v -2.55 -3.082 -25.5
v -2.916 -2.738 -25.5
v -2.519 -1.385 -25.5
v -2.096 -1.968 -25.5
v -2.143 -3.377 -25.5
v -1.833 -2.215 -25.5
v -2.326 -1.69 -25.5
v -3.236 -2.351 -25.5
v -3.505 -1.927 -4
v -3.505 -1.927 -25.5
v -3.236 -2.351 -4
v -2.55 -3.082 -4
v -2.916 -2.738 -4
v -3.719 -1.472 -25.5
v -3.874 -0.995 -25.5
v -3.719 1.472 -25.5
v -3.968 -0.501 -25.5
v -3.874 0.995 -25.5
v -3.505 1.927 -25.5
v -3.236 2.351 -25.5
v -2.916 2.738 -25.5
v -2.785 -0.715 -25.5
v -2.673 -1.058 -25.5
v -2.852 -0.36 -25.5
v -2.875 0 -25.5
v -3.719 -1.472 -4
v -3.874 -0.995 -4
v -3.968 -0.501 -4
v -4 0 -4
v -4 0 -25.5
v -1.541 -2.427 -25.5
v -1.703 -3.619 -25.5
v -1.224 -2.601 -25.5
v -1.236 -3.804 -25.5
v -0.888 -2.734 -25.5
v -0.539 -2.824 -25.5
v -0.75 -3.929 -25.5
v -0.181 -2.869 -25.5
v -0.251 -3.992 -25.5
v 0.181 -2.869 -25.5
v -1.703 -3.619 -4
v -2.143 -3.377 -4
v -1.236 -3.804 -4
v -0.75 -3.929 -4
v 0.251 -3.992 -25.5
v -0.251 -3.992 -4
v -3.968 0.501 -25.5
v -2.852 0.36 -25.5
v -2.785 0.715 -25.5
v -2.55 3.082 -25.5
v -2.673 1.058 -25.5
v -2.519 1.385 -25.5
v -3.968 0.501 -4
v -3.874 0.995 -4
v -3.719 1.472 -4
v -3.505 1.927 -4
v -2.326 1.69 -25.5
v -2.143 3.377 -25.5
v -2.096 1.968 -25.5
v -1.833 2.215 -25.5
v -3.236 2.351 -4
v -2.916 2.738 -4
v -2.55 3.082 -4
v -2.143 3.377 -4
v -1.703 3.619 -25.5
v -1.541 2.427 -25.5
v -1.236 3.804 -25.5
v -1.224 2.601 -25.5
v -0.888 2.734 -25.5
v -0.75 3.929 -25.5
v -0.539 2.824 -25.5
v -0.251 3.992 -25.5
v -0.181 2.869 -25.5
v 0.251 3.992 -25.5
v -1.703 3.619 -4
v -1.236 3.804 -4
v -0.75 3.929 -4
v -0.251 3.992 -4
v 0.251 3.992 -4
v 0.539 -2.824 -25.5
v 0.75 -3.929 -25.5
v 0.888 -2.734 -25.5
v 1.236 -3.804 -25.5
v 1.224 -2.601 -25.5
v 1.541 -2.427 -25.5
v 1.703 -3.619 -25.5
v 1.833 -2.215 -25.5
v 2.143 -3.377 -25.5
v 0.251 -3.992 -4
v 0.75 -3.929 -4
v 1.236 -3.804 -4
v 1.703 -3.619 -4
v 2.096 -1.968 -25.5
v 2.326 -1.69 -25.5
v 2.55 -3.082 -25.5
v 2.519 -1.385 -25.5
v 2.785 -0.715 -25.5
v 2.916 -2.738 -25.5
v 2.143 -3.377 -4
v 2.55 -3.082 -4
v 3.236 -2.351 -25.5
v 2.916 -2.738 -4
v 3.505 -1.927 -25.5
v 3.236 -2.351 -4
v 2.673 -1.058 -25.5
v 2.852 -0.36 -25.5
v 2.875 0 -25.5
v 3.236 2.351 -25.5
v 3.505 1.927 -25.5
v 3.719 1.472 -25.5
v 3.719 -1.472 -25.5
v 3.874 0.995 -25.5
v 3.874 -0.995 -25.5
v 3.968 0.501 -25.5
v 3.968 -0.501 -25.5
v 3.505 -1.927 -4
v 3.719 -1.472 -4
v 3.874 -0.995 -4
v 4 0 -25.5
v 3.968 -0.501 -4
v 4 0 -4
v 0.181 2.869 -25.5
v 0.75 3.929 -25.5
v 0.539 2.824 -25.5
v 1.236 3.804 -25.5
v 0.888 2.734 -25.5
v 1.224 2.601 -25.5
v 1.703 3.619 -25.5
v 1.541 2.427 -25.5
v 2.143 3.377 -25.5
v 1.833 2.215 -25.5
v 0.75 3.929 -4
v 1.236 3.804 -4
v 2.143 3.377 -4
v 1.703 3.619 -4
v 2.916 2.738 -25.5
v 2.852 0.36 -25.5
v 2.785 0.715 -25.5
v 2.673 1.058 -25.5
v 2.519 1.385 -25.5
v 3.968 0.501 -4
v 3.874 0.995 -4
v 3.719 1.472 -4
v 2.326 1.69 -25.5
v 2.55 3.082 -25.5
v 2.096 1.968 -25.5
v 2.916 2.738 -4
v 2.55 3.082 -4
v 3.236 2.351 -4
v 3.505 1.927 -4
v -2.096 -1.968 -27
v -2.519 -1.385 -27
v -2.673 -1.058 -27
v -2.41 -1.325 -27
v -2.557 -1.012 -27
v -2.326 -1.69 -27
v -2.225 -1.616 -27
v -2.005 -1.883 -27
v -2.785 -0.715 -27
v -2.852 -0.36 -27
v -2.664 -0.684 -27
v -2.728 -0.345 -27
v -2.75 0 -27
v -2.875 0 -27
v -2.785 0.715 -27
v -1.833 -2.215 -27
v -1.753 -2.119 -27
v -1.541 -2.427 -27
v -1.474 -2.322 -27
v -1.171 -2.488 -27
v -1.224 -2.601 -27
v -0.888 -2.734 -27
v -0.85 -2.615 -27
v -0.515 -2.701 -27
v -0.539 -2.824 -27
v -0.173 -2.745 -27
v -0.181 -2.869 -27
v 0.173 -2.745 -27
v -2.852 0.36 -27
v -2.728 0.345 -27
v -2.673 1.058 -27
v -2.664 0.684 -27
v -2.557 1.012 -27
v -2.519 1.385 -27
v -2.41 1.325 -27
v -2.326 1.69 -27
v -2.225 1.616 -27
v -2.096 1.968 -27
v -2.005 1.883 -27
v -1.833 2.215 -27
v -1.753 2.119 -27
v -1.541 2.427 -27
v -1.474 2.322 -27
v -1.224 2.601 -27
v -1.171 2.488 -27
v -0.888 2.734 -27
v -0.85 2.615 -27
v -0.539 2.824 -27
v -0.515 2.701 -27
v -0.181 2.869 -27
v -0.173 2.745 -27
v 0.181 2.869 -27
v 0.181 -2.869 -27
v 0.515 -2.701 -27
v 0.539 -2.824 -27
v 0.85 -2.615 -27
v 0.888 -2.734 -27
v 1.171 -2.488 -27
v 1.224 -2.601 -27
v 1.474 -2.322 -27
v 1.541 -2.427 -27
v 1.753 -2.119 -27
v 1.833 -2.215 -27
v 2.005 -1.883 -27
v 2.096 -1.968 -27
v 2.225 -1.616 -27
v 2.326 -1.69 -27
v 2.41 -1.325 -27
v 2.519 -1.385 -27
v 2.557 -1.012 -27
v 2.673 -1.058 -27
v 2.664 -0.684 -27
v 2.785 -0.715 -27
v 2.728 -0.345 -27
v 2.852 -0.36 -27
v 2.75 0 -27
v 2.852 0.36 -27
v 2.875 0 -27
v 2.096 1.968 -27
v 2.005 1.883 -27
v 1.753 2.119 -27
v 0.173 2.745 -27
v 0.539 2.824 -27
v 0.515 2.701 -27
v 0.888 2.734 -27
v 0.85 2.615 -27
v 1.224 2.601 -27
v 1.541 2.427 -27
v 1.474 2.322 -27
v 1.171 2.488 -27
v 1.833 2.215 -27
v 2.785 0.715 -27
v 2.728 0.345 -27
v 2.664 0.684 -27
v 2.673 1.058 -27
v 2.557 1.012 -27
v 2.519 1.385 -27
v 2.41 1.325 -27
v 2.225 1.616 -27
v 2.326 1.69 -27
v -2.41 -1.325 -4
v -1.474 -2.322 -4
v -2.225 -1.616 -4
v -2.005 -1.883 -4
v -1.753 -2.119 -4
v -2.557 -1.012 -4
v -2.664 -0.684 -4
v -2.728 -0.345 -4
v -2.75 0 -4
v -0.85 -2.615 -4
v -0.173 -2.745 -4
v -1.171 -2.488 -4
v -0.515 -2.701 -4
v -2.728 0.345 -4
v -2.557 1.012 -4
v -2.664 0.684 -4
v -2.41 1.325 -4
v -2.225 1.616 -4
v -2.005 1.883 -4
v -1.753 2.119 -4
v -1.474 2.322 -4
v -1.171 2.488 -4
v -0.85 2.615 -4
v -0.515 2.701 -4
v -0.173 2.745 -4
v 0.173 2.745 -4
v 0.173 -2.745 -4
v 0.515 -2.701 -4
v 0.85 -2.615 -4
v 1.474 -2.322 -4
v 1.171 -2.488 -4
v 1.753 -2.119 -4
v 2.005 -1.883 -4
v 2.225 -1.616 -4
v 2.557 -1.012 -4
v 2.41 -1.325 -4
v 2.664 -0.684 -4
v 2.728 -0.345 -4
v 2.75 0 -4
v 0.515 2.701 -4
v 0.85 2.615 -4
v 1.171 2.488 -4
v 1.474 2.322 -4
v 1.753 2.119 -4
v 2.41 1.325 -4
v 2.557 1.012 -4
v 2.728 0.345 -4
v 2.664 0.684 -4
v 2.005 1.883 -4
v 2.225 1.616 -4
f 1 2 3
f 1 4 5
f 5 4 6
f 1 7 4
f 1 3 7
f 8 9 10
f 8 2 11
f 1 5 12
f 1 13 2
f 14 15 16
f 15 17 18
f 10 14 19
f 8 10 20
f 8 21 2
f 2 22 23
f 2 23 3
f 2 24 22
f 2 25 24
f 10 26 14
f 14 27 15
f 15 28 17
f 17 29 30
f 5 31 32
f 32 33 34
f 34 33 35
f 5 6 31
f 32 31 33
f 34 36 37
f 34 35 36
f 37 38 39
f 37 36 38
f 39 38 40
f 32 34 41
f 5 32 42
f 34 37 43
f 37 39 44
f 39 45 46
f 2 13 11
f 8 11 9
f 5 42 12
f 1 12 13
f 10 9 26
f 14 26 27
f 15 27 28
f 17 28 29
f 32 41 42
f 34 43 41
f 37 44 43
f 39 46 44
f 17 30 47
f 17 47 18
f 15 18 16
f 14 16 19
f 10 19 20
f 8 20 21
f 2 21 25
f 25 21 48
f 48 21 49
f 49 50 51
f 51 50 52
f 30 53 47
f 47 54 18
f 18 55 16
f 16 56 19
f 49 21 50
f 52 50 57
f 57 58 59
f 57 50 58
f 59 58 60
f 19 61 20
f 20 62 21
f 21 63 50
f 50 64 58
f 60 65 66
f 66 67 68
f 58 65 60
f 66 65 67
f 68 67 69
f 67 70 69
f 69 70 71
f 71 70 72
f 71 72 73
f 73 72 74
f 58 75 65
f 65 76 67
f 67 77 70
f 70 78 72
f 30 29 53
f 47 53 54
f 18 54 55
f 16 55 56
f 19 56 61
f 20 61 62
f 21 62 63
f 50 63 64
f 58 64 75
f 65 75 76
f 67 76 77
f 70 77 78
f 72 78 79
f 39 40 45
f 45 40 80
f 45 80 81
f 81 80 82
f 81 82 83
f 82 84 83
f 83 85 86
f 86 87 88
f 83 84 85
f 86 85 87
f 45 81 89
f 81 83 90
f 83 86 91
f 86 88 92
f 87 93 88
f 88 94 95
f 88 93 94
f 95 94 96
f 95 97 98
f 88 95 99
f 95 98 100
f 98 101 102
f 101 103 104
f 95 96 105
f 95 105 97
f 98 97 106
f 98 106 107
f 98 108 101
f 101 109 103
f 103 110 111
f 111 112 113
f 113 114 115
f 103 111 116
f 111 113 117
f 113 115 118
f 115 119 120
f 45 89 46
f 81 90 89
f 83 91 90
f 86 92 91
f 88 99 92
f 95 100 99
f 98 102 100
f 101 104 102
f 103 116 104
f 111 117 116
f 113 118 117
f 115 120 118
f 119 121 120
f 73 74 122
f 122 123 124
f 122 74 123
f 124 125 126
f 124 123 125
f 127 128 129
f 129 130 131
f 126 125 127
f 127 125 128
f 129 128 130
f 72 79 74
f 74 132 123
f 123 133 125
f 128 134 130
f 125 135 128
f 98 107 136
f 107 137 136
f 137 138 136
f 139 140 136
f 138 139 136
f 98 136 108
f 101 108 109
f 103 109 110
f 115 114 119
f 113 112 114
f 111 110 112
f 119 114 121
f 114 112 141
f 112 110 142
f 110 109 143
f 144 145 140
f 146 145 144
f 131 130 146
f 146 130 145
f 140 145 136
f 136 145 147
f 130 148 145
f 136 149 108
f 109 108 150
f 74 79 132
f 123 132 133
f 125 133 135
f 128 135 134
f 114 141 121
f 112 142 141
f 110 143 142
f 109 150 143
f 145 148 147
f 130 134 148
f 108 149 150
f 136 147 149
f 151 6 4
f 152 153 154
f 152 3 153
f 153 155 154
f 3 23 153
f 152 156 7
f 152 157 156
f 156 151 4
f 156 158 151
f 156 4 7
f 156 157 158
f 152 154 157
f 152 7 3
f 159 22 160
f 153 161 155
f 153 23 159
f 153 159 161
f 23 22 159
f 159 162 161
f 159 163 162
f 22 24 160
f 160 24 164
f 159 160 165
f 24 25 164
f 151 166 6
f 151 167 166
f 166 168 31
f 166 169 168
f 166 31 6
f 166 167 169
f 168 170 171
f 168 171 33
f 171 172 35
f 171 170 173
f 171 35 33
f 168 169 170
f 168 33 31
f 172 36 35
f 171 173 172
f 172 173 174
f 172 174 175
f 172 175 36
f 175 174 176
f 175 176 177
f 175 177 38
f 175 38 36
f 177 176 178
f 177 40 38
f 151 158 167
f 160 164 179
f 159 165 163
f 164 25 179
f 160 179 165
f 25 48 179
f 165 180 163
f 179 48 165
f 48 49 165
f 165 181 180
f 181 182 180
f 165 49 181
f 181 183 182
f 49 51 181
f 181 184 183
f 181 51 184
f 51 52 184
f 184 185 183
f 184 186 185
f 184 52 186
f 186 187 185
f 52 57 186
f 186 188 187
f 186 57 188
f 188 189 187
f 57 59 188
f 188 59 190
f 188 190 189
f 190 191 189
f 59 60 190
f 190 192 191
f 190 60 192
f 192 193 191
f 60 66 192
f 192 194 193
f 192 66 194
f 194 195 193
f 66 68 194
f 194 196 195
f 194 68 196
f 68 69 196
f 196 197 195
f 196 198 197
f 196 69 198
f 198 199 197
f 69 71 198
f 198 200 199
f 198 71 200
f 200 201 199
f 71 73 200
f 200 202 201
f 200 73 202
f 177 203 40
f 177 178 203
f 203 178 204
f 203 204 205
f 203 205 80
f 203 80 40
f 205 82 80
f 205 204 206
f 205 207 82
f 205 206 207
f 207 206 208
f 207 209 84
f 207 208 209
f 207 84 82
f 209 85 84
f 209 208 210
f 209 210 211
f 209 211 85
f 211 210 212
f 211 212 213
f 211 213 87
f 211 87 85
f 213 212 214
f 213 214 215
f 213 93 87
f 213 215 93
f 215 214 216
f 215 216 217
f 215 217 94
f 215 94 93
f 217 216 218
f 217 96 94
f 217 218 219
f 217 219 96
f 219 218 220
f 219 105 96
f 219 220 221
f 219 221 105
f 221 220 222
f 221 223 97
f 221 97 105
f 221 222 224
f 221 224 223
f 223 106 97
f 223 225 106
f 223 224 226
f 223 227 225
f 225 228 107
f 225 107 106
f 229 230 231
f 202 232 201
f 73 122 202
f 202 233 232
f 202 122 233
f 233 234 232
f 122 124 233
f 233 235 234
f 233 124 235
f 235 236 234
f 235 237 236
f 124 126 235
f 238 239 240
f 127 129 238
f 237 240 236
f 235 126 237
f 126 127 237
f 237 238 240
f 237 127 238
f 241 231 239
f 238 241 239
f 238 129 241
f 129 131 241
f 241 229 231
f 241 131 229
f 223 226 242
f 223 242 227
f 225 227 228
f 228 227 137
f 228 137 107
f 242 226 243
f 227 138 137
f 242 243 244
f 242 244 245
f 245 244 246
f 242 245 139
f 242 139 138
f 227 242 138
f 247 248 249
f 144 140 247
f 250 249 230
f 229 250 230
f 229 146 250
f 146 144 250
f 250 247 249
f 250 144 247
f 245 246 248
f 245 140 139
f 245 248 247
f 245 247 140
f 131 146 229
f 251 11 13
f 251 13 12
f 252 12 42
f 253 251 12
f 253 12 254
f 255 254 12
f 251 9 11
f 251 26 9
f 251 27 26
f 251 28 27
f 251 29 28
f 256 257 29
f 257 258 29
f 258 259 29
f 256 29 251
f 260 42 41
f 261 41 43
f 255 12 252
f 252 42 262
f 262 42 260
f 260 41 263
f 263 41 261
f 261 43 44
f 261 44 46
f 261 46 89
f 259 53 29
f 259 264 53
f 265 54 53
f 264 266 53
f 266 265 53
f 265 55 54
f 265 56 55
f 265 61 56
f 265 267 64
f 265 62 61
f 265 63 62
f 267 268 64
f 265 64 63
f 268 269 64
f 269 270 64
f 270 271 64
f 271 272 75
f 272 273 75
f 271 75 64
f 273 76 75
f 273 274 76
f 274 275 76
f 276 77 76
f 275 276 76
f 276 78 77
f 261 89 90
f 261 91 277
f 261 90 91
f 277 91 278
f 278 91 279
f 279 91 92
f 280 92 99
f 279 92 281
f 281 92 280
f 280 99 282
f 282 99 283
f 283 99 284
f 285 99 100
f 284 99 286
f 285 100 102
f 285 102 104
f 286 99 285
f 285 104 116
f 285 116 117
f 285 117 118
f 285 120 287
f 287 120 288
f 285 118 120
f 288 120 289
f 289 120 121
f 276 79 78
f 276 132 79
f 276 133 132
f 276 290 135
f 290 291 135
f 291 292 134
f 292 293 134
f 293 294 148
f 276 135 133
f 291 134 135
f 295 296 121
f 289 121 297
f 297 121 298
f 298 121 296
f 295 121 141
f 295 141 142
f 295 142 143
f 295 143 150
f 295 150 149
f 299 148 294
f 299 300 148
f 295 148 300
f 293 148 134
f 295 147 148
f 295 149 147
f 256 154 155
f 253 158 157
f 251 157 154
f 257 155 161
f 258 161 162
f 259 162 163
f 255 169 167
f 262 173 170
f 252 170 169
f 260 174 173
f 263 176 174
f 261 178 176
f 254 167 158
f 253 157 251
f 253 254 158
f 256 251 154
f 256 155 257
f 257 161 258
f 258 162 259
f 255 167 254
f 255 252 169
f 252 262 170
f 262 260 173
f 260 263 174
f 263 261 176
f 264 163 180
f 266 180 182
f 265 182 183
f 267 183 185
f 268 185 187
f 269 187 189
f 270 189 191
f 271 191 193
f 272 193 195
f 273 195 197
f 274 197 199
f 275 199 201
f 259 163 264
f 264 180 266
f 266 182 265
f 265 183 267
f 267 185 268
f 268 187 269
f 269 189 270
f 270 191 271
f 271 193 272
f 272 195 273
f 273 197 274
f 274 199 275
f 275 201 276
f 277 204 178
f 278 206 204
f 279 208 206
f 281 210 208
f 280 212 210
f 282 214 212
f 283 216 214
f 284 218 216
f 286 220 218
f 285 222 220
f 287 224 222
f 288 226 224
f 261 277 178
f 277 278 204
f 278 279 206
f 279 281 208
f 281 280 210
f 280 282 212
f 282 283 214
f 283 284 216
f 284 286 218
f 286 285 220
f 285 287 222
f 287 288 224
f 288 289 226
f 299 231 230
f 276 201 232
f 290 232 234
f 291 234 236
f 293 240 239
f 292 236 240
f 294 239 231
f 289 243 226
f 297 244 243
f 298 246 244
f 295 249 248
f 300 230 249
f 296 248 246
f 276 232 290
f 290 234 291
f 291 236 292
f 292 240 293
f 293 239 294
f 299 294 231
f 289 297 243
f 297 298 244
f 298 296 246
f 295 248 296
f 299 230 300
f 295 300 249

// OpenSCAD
$fn = 50;

difference() {
	union() {
		translate(v = [0, 0, -25.5]) {
			cylinder(h = 28.5, r = 4.0);
		}
		#translate(v = [0, 0, -27.0]) {
			cylinder(h = 27, r = 2.875);
		}
	}
	union() {
		translate(v = [0, 0, 0]) {
			rotate(a = [0, 0, 0]) {
				difference() {
					union() {
						translate(v = [0, 0, -4]) {
							linear_extrude(height = 4) {
								polygon(points = [[4.8468, 0.0], [2.4234000000000004, 4.197451927062417], [-2.423399999999999, 4.197451927062417], [-4.8468, 5.935618106107392e-16], [-2.423400000000002, -4.197451927062416], [2.423399999999997, -4.197451927062419]]);
							}
						}
					}
					union();
				}
			}
		}
		#cylinder(h = 3, r = 6.25);
		#translate(v = [0, 0, -100.0]) {
			cylinder(h = 200, r = 2.75);
		}
	}
}
